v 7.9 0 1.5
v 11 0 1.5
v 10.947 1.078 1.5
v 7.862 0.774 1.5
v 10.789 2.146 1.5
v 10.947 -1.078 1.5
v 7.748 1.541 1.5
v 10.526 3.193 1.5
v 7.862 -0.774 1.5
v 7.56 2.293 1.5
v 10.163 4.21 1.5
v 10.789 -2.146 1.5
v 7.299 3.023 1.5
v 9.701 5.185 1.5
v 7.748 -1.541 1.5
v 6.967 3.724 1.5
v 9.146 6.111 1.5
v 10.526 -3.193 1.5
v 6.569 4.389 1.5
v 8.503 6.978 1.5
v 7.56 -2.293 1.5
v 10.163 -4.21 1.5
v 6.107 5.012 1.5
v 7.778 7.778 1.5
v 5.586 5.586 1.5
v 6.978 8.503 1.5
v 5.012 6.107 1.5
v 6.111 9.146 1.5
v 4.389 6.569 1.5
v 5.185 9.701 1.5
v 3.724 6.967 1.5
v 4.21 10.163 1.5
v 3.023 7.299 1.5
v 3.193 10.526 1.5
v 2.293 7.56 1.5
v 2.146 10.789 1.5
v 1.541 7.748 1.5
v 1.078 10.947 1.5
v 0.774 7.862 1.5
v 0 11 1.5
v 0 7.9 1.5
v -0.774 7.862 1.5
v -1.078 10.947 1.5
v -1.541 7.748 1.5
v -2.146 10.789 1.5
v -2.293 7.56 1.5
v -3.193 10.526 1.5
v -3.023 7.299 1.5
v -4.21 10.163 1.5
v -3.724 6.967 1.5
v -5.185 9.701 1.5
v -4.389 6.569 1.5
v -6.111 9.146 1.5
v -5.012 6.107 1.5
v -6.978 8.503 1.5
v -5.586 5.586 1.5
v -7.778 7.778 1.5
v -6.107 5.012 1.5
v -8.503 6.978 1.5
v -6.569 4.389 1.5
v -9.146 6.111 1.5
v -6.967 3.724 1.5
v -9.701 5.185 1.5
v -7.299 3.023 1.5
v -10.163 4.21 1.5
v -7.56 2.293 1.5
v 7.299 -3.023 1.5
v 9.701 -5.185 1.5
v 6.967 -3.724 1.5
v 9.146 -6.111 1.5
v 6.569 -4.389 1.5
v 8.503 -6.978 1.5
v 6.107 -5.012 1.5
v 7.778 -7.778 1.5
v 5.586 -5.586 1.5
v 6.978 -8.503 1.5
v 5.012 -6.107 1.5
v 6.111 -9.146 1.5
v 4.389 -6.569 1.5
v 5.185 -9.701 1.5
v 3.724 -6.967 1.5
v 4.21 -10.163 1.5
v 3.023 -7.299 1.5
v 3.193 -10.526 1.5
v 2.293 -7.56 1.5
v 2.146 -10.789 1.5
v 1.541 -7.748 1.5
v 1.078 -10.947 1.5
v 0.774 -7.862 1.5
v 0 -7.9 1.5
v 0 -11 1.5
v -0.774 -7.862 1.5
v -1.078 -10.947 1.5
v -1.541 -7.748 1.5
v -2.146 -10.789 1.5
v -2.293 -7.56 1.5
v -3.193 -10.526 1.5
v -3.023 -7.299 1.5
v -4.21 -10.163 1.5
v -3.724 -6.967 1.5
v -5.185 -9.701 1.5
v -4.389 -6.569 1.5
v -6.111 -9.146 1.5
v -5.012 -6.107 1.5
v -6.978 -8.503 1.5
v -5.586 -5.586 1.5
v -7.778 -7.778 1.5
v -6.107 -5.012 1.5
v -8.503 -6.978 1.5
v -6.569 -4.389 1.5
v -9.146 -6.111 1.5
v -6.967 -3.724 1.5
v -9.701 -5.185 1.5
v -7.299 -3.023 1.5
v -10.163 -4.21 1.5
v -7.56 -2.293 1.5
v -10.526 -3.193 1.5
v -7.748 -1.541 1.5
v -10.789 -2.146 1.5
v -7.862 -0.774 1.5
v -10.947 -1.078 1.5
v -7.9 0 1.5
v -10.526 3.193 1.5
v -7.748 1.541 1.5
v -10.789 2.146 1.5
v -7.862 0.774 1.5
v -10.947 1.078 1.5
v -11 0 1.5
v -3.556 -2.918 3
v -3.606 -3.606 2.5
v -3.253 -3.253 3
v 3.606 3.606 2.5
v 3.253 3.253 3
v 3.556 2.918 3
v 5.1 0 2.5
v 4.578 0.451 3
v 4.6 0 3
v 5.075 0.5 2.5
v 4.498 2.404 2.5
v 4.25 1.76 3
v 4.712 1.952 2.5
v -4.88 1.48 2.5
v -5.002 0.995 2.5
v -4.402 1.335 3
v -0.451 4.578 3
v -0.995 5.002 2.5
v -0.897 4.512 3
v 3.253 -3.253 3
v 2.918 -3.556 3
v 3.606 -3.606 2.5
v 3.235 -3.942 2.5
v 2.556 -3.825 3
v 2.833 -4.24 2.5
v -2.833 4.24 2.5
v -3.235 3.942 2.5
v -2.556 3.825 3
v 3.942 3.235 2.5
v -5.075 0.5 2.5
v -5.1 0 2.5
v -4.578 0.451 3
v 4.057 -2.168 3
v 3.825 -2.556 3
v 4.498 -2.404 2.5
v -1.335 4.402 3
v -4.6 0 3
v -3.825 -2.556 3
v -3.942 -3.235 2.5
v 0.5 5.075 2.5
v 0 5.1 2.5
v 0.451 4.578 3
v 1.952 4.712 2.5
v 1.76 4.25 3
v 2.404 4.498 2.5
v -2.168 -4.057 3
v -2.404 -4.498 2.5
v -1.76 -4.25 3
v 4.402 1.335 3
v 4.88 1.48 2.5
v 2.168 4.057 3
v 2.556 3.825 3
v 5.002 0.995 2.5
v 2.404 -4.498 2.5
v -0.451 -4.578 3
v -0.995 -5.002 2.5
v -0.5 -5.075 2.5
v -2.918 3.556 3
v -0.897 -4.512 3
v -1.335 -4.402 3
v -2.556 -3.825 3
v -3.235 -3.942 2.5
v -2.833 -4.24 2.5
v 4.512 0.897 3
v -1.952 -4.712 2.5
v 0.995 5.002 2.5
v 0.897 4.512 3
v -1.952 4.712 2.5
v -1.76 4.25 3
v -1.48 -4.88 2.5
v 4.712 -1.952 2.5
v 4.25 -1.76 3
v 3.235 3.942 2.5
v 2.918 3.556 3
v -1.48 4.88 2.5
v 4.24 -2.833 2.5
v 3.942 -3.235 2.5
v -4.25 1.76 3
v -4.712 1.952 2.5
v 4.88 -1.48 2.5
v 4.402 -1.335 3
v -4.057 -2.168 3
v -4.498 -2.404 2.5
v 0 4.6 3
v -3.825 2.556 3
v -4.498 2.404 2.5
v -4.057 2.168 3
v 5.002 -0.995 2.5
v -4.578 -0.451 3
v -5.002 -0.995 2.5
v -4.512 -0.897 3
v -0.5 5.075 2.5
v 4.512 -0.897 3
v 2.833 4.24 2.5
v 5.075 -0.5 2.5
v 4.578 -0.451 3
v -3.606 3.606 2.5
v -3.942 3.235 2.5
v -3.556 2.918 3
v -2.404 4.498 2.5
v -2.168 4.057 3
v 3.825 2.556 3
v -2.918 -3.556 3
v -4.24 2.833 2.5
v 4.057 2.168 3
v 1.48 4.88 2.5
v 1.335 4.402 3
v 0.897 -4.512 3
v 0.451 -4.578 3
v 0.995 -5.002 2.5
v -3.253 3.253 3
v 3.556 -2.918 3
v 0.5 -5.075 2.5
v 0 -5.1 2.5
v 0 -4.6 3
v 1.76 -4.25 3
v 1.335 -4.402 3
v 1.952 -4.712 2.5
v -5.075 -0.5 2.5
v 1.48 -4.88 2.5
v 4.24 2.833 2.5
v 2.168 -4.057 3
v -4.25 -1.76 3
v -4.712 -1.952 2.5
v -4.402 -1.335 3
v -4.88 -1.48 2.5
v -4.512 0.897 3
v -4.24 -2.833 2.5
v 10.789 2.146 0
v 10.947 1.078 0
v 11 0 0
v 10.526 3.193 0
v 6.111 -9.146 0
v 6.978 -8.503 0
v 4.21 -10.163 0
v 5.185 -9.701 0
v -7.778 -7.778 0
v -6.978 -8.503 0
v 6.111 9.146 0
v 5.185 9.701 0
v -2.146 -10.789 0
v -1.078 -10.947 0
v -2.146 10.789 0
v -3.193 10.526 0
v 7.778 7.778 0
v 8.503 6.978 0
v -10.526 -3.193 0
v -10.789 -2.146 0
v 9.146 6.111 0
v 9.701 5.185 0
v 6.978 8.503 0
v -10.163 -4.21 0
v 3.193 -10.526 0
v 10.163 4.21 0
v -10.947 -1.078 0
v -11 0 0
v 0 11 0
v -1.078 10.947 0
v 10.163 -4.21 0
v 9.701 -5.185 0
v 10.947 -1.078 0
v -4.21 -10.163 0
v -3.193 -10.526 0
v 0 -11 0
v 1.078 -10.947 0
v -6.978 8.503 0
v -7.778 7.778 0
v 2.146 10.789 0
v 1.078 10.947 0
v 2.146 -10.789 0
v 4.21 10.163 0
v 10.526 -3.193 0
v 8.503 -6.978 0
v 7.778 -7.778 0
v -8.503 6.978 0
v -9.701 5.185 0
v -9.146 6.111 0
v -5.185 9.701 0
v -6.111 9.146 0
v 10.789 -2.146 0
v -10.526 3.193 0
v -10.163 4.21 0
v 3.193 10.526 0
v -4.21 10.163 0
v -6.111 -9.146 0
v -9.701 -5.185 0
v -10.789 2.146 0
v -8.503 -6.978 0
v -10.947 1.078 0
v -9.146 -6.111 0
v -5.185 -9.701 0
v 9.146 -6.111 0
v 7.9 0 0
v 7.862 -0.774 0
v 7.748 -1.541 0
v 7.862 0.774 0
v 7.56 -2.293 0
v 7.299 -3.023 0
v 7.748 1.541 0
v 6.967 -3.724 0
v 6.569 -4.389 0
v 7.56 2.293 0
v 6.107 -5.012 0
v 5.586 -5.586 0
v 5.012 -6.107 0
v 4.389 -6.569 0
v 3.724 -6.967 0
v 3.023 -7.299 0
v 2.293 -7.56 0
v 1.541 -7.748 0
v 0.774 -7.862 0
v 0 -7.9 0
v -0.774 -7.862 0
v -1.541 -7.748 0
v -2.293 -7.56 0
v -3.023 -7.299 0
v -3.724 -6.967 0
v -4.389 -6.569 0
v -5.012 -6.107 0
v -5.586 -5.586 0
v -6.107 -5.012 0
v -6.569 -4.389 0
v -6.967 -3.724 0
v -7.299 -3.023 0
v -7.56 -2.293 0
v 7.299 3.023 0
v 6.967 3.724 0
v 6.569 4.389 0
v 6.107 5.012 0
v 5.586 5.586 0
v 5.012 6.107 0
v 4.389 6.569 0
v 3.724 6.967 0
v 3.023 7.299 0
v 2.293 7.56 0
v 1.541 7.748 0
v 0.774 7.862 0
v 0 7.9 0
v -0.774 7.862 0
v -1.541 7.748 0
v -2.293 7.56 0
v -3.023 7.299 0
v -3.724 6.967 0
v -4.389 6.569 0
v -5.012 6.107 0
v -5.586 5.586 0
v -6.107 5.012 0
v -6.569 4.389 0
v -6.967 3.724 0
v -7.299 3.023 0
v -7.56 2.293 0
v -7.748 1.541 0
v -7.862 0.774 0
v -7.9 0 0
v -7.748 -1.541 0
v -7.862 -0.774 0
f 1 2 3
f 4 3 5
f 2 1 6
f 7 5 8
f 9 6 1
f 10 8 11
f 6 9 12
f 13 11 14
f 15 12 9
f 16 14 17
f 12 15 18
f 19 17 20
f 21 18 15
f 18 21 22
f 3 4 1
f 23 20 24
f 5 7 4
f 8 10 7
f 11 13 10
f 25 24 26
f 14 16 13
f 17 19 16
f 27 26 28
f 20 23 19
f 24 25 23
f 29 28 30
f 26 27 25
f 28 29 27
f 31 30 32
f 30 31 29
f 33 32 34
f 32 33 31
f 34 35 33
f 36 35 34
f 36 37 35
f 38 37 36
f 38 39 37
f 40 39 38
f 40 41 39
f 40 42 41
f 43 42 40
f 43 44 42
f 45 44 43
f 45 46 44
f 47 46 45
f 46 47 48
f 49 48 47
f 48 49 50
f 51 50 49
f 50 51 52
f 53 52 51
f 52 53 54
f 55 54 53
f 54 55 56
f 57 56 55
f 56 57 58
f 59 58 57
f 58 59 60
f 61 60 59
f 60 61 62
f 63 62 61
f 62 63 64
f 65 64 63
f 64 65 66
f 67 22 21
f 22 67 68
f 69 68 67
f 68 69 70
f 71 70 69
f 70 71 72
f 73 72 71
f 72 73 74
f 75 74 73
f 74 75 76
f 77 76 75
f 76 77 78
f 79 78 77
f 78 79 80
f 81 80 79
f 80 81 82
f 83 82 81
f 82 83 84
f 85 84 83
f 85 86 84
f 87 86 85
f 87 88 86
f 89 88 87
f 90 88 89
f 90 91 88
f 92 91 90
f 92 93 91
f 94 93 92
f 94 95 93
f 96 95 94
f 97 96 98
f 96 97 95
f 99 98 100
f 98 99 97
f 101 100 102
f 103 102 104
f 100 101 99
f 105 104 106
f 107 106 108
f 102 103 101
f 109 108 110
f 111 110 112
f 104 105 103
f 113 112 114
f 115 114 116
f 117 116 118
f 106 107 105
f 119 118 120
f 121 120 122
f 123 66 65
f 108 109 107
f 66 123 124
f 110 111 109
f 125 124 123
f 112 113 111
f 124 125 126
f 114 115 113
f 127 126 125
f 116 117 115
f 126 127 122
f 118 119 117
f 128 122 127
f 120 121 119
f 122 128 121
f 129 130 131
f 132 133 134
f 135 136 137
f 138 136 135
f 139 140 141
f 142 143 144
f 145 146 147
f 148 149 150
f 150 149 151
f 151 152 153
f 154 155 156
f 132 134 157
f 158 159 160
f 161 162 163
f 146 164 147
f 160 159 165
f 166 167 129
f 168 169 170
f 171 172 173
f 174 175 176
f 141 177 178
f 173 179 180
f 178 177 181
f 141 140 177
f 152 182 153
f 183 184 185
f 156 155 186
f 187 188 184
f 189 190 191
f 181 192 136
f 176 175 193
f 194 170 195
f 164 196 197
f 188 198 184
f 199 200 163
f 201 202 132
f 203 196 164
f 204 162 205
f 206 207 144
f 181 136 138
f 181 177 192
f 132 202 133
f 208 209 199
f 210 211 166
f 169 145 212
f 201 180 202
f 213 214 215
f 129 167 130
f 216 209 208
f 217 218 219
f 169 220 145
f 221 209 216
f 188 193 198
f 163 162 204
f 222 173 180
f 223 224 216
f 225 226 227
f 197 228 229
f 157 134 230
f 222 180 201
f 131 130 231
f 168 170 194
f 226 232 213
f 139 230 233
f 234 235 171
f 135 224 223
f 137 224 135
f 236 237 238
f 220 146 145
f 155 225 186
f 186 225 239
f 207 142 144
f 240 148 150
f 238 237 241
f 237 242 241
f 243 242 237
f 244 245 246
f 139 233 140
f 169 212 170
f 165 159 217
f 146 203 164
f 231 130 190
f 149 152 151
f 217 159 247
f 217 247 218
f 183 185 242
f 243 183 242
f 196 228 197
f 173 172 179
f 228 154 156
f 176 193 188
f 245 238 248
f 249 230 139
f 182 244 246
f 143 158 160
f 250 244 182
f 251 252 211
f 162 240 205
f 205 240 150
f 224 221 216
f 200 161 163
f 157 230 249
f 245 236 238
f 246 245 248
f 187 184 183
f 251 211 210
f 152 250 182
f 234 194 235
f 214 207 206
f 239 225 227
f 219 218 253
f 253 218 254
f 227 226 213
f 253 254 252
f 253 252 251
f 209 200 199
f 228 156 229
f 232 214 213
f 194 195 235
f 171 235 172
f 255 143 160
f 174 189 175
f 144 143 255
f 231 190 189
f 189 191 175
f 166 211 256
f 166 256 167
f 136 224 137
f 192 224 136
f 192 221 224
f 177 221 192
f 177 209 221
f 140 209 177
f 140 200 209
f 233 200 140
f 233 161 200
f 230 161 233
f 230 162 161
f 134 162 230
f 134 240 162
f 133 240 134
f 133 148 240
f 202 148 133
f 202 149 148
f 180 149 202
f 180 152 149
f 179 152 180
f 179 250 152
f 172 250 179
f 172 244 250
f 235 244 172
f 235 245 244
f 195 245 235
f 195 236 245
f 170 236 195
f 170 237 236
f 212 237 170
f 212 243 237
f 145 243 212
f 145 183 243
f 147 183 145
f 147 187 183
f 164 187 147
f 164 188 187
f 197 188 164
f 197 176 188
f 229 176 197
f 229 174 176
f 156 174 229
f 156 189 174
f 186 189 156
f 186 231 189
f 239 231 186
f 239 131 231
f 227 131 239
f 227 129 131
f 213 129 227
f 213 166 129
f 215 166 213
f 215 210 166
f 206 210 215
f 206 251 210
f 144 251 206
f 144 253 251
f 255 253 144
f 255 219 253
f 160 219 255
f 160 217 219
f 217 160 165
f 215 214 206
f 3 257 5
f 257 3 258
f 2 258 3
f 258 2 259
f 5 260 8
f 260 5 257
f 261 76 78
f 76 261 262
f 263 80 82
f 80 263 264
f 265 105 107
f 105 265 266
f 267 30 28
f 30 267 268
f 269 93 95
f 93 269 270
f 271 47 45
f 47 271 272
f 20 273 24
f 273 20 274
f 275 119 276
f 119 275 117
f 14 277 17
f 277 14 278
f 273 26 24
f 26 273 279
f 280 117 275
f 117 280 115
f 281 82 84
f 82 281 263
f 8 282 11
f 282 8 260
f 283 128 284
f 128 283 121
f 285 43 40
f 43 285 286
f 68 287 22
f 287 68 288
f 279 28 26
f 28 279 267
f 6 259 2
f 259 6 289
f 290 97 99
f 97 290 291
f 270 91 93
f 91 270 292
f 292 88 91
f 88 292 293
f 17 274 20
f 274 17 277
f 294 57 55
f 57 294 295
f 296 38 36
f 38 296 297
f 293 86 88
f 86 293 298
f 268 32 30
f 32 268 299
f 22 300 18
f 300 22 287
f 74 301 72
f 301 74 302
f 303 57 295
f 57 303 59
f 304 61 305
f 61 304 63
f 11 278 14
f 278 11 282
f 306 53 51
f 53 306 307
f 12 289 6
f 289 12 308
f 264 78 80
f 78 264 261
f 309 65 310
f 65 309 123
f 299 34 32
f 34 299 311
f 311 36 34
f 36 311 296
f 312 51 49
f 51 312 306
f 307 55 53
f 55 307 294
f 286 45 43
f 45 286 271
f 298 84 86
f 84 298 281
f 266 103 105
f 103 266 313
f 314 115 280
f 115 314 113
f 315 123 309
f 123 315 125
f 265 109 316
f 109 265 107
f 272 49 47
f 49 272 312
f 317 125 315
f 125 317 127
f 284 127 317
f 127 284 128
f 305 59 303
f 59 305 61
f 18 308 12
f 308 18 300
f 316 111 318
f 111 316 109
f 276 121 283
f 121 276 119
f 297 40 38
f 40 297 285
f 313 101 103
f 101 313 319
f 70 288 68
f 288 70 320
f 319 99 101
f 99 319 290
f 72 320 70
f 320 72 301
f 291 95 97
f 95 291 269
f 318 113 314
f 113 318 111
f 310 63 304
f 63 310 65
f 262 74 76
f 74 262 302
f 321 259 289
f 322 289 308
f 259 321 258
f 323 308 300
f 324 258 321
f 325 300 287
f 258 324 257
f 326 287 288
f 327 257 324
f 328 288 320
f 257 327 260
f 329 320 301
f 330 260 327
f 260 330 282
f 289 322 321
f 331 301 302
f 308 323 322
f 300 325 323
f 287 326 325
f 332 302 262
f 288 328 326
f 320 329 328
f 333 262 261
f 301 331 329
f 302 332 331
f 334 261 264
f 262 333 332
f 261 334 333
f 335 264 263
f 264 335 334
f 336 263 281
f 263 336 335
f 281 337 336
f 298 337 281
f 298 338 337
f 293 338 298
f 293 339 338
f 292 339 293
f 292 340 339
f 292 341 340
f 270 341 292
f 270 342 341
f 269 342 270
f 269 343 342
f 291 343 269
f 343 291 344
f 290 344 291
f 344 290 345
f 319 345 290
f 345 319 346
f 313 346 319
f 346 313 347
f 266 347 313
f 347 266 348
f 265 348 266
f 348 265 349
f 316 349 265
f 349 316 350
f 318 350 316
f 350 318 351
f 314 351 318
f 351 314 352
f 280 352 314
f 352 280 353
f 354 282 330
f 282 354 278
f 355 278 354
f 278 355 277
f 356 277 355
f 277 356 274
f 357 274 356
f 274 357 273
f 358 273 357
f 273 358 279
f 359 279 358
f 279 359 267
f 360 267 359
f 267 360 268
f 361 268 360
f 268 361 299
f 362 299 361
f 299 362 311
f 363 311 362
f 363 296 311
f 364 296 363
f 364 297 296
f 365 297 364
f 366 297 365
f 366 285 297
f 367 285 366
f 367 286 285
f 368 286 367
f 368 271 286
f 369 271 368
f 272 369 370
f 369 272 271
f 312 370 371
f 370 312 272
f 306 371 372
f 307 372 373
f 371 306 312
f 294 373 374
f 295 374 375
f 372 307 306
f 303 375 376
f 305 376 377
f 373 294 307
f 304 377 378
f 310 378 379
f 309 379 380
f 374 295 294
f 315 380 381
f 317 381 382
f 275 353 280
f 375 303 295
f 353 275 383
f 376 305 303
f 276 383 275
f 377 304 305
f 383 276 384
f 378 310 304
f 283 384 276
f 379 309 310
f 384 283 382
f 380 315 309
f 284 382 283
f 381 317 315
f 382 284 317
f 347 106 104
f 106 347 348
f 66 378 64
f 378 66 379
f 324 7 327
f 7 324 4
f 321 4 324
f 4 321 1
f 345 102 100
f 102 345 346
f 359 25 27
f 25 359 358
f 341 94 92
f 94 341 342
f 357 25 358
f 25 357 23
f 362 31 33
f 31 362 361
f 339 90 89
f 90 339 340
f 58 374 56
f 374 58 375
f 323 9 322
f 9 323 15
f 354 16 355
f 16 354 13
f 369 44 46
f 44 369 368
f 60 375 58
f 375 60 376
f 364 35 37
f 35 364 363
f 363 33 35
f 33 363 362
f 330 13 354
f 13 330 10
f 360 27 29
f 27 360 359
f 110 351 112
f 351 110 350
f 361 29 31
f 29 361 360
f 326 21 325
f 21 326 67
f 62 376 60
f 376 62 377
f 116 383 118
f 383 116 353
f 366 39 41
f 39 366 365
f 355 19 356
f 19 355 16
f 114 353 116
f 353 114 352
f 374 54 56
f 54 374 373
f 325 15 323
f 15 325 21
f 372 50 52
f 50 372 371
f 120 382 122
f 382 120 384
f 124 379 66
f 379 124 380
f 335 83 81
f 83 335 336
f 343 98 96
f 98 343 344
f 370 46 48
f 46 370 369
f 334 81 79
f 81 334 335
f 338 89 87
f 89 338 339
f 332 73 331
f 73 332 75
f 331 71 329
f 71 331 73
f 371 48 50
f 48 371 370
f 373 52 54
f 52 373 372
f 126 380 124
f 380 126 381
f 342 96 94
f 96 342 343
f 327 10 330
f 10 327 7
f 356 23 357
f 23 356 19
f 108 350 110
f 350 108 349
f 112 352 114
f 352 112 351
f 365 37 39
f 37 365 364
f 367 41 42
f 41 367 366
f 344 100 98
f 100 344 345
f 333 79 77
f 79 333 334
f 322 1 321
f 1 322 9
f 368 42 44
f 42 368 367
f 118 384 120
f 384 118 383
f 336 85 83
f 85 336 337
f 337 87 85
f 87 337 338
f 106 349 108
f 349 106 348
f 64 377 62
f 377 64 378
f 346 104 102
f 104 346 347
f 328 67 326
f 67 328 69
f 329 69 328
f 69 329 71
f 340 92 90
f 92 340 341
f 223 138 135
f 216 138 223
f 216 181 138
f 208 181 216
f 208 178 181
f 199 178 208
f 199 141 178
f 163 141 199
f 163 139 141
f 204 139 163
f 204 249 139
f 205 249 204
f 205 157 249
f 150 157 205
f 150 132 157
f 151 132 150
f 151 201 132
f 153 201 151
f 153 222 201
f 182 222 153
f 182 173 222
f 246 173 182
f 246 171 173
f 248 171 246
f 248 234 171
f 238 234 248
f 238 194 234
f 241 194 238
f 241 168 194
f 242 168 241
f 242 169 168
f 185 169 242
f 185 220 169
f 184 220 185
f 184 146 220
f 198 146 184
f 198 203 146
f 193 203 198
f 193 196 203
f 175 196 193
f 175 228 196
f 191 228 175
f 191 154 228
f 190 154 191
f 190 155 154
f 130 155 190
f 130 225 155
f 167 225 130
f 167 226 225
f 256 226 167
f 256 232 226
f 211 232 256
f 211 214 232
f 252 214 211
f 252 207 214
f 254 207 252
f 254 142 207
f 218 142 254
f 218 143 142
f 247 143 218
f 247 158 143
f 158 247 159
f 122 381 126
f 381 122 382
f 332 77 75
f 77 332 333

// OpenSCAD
// file: ../dimensions.scad
// dimensions.scad — single source of truth for all tray geometry constants.
//
// All values in millimetres unless otherwise noted.
// Sources:
//   - CD/DVD drive envelope: SFF-8551 (5.25" half-height) and laptop slim ODD (9.5 mm)
//   - CD disc geometry: ECMA-130
//   - MiniDisc cartridge: Sony MiniDisc specification (MD)
//   - Issues weyucou/minidisc-tray#1 (3D modeling format research) and
//     weyucou/minidisc-tray#2 (CD/DVD tray dimensions)


// ---------------------------------------------------------------------------
// CD/DVD drive envelope (target form factor)
// ---------------------------------------------------------------------------

// Primary target: 5.25" half-height (SFF-8551) drive body.
DRIVE_BODY_W = 146.1;   // outer width
DRIVE_BODY_H = 41.3;    // outer height
DRIVE_BODY_D = 170;     // outer depth (typical; range 170–203)

// Slim laptop ODD (9.5 mm) — secondary parametric variant.
SLIM_BODY_W = 128;
SLIM_BODY_H = 9.5;
SLIM_BODY_D = 127;


// ---------------------------------------------------------------------------
// CD tray envelope (the cavity the printed tray must fit into)
// ---------------------------------------------------------------------------

// Inner tray usable width — the lateral envelope between the tray side walls.
// Derived in #2: ~63 mm from spindle centre to each side wall.
TRAY_INNER_W = 126;

// Spindle-centre-to-front-bezel distance.
// Range observed across donor drives: 80–95 mm.
// Default = mid-range; UPDATE after physical measurement of the actual donor drive.
SPINDLE_TO_BEZEL = 88;

// CD program area (informational — used to validate spindle clearance).
// ECMA-130: program area lies between r=25 and r=58 mm.
CD_DISC_DIA = 120;
CD_CENTER_HOLE = 15;
CD_CLAMP_R_MIN = 26;
CD_CLAMP_R_MAX = 33;

// Inner tray usable depth — derived from spindle-to-bezel + CD radius + rear margin.
// Matches typical 5.25" half-height CD tray depth. Refine when donor drive measured.
TRAY_INNER_D = SPINDLE_TO_BEZEL + CD_DISC_DIA / 2 + 10;

// Spindle clearance hole radius — clears the CD spindle hub / clamp area.
// Sized at CD_CLAMP_R_MAX + 1 mm safety; also clears the MD internal disc edge.
SPINDLE_CLEARANCE_R = CD_CLAMP_R_MAX + 1;


// ---------------------------------------------------------------------------
// MiniDisc cartridge (the part the tray must position and shutter-actuate)
// ---------------------------------------------------------------------------

// Cartridge outer dimensions — Sony MD spec.
MD_W = 72;   // width  (along shutter slide axis)
MD_D = 68;   // depth  (perpendicular to shutter slide)
MD_H = 5;    // thickness

// Internal disc — used for spindle-clearance hole sizing and centring checks.
MD_DISC_DIA = 64;
MD_CENTER_HOLE = 11;


// ---------------------------------------------------------------------------
// Print and fit tolerances
// ---------------------------------------------------------------------------

// Per-side print clearance applied to mating surfaces (tray-to-cavity, MD pocket).
// Tuned for AFINIA H400+ FDM with default Afinia Studio profile.
FIT_CLEARANCE = 0.4;

// OpenSCAD render facet count for circular features.
// Higher = smoother curves at the cost of render time.
$fn = 64;


// ---------------------------------------------------------------------------
// Tray geometry (design constants)
// ---------------------------------------------------------------------------

// Tray base plate thickness — chosen for FDM stiffness across the full footprint.
// Must exceed MD_POCKET_DEPTH so the pocket leaves a continuous floor.
TRAY_BASE_THICKNESS = 4.0;

// MD pocket recess depth — how far the cartridge sits below the tray surface.
// MD_H = 5 mm; a 3 mm recess leaves the cartridge ~2 mm proud, easy to grip.
MD_POCKET_DEPTH = 3.0;

// Shutter actuator pin geometry — engages the MD cartridge shutter tab from
// inside the pocket as the cartridge is slid into final position.
SHUTTER_PIN_DIA = 3.0;
SHUTTER_PIN_H = 6.0;

// Shutter tab engagement position, measured from the leading corner of the
// MD pocket. Approximate; refine against a physical Sony MD cartridge.
SHUTTER_TAB_X_OFFSET = 5.0;
SHUTTER_TAB_Y_OFFSET = 4.0;


// ---------------------------------------------------------------------------
// Spindle adapter (issue #8) — OEM CD/DVD spindle hub ↔ MD center hole
// ---------------------------------------------------------------------------
//
// Two-stage stacked-cylinder sleeve. Lower sleeve slip-fits over the OEM hub;
// upper post engages the MD internal-disc 11 mm center hole.
//
// SPINDLE_HUB_OD and SPINDLE_PEG_H are OPEN RISKS — placeholders pending
// physical measurement of the project donor drive. See
// docs/dimensions/assumptions.md.

// OEM spindle hub outer diameter — mid-range default from typical 5.25"
// half-height ODD spindles (~14–16 mm). VERIFY against donor drive.
SPINDLE_HUB_OD = 15;

// OEM spindle hub peg height — typical default; VERIFY against donor drive.
SPINDLE_PEG_H = 3.5;

// Adapter inner bore — slip-fit on the OEM hub.
SPINDLE_ADAPTER_BORE = SPINDLE_HUB_OD + 2 * FIT_CLEARANCE;

// Adapter upper-post OD — enters the MD center hole with FIT_CLEARANCE on
// each side. With MD_CENTER_HOLE = 11 and FIT_CLEARANCE = 0.4 → 10.2 mm.
SPINDLE_ADAPTER_POST_OD = MD_CENTER_HOLE - 2 * FIT_CLEARANCE;

// Adapter lower-sleeve OD — kept well below the MD internal disc edge
// (MD_DISC_DIA = 64 mm) so the sleeve does not foul the cartridge floor.
// Provides ~3 mm wall around the bore for FDM strength.
SPINDLE_ADAPTER_LOWER_OD = 22;

// Adapter stack heights — split so total height fits inside the cartridge
// pocket envelope (MD_POCKET_DEPTH = 3.0 mm).
SPINDLE_ADAPTER_LOWER_H = 1.5;
SPINDLE_ADAPTER_POST_H = 1.5;

// Total stacked height. MUST satisfy SPINDLE_ADAPTER_TOTAL_H <= MD_POCKET_DEPTH;
// enforced by an assert() in parts/spindle_adapter.scad.
SPINDLE_ADAPTER_TOTAL_H = SPINDLE_ADAPTER_LOWER_H + SPINDLE_ADAPTER_POST_H;

// Lead-in chamfer on the top edge of the upper post (0.5 mm × 45°) to ease
// loading of the MD cartridge over the post.
SPINDLE_ADAPTER_CHAMFER = 0.5;
// main file
// spindle_adapter.scad — slip-fit sleeve that adapts the OEM CD/DVD drive
// spindle hub to engage a Sony MiniDisc internal-disc center hole.
//
// Two-stage stacked-cylinder sleeve:
//   - Lower sleeve  : slip-fits over the OEM hub via SPINDLE_ADAPTER_BORE.
//   - Upper post    : enters the MD 11 mm center hole (SPINDLE_ADAPTER_POST_OD).
//   - Top chamfer   : 0.5 mm × 45° lead-in for MD loading.
//
// Total stacked height must not exceed MD_POCKET_DEPTH so the adapter stays
// inside the cartridge pocket envelope defined by the parent tray (#3, #5).
//
// Coordinate system:
//   - Origin at the bottom face of the lower sleeve, on the central axis.
//   - +Z up (out of the OEM spindle hub).
//
// Render with:
//   openscad -o models/export/spindle_adapter.stl models/src/parts/spindle_adapter.scad

include <../dimensions.scad>;

// Hard envelope check — total stacked height must fit inside the pocket.
assert(
    SPINDLE_ADAPTER_TOTAL_H <= MD_POCKET_DEPTH,
    "SPINDLE_ADAPTER_TOTAL_H exceeds MD_POCKET_DEPTH; reduce SPINDLE_ADAPTER_LOWER_H or SPINDLE_ADAPTER_POST_H."
);

// Echo derived dimensions on render — visible in OpenSCAD console / CLI output.
echo(str(
    "[spindle_adapter] total_h=", SPINDLE_ADAPTER_TOTAL_H,
    " mm (envelope <= ", MD_POCKET_DEPTH,
    " mm); bore=", SPINDLE_ADAPTER_BORE,
    " mm; post_od=", SPINDLE_ADAPTER_POST_OD,
    " mm; lower_od=", SPINDLE_ADAPTER_LOWER_OD, " mm"
));

module spindle_adapter(
    bore = SPINDLE_ADAPTER_BORE,
    lower_od = SPINDLE_ADAPTER_LOWER_OD,
    lower_h = SPINDLE_ADAPTER_LOWER_H,
    post_od = SPINDLE_ADAPTER_POST_OD,
    post_h = SPINDLE_ADAPTER_POST_H,
    chamfer = SPINDLE_ADAPTER_CHAMFER
) {
    difference() {
        union() {
            // Lower sleeve — clamps the OEM hub.
            cylinder(d = lower_od, h = lower_h);

            // Upper post — straight cylinder body + chamfered top edge.
            translate([0, 0, lower_h]) {
                cylinder(h = post_h - chamfer, d = post_od);
                translate([0, 0, post_h - chamfer])
                    cylinder(
                        h = chamfer,
                        d1 = post_od,
                        d2 = post_od - 2 * chamfer
                    );
            }
        }

        // Through-bore in the lower sleeve for slip-fit on the OEM hub.
        // The +1 extension above and below guarantees a clean cut.
        translate([0, 0, -1])
            cylinder(d = bore, h = lower_h + 2);
    }
}

spindle_adapter();
